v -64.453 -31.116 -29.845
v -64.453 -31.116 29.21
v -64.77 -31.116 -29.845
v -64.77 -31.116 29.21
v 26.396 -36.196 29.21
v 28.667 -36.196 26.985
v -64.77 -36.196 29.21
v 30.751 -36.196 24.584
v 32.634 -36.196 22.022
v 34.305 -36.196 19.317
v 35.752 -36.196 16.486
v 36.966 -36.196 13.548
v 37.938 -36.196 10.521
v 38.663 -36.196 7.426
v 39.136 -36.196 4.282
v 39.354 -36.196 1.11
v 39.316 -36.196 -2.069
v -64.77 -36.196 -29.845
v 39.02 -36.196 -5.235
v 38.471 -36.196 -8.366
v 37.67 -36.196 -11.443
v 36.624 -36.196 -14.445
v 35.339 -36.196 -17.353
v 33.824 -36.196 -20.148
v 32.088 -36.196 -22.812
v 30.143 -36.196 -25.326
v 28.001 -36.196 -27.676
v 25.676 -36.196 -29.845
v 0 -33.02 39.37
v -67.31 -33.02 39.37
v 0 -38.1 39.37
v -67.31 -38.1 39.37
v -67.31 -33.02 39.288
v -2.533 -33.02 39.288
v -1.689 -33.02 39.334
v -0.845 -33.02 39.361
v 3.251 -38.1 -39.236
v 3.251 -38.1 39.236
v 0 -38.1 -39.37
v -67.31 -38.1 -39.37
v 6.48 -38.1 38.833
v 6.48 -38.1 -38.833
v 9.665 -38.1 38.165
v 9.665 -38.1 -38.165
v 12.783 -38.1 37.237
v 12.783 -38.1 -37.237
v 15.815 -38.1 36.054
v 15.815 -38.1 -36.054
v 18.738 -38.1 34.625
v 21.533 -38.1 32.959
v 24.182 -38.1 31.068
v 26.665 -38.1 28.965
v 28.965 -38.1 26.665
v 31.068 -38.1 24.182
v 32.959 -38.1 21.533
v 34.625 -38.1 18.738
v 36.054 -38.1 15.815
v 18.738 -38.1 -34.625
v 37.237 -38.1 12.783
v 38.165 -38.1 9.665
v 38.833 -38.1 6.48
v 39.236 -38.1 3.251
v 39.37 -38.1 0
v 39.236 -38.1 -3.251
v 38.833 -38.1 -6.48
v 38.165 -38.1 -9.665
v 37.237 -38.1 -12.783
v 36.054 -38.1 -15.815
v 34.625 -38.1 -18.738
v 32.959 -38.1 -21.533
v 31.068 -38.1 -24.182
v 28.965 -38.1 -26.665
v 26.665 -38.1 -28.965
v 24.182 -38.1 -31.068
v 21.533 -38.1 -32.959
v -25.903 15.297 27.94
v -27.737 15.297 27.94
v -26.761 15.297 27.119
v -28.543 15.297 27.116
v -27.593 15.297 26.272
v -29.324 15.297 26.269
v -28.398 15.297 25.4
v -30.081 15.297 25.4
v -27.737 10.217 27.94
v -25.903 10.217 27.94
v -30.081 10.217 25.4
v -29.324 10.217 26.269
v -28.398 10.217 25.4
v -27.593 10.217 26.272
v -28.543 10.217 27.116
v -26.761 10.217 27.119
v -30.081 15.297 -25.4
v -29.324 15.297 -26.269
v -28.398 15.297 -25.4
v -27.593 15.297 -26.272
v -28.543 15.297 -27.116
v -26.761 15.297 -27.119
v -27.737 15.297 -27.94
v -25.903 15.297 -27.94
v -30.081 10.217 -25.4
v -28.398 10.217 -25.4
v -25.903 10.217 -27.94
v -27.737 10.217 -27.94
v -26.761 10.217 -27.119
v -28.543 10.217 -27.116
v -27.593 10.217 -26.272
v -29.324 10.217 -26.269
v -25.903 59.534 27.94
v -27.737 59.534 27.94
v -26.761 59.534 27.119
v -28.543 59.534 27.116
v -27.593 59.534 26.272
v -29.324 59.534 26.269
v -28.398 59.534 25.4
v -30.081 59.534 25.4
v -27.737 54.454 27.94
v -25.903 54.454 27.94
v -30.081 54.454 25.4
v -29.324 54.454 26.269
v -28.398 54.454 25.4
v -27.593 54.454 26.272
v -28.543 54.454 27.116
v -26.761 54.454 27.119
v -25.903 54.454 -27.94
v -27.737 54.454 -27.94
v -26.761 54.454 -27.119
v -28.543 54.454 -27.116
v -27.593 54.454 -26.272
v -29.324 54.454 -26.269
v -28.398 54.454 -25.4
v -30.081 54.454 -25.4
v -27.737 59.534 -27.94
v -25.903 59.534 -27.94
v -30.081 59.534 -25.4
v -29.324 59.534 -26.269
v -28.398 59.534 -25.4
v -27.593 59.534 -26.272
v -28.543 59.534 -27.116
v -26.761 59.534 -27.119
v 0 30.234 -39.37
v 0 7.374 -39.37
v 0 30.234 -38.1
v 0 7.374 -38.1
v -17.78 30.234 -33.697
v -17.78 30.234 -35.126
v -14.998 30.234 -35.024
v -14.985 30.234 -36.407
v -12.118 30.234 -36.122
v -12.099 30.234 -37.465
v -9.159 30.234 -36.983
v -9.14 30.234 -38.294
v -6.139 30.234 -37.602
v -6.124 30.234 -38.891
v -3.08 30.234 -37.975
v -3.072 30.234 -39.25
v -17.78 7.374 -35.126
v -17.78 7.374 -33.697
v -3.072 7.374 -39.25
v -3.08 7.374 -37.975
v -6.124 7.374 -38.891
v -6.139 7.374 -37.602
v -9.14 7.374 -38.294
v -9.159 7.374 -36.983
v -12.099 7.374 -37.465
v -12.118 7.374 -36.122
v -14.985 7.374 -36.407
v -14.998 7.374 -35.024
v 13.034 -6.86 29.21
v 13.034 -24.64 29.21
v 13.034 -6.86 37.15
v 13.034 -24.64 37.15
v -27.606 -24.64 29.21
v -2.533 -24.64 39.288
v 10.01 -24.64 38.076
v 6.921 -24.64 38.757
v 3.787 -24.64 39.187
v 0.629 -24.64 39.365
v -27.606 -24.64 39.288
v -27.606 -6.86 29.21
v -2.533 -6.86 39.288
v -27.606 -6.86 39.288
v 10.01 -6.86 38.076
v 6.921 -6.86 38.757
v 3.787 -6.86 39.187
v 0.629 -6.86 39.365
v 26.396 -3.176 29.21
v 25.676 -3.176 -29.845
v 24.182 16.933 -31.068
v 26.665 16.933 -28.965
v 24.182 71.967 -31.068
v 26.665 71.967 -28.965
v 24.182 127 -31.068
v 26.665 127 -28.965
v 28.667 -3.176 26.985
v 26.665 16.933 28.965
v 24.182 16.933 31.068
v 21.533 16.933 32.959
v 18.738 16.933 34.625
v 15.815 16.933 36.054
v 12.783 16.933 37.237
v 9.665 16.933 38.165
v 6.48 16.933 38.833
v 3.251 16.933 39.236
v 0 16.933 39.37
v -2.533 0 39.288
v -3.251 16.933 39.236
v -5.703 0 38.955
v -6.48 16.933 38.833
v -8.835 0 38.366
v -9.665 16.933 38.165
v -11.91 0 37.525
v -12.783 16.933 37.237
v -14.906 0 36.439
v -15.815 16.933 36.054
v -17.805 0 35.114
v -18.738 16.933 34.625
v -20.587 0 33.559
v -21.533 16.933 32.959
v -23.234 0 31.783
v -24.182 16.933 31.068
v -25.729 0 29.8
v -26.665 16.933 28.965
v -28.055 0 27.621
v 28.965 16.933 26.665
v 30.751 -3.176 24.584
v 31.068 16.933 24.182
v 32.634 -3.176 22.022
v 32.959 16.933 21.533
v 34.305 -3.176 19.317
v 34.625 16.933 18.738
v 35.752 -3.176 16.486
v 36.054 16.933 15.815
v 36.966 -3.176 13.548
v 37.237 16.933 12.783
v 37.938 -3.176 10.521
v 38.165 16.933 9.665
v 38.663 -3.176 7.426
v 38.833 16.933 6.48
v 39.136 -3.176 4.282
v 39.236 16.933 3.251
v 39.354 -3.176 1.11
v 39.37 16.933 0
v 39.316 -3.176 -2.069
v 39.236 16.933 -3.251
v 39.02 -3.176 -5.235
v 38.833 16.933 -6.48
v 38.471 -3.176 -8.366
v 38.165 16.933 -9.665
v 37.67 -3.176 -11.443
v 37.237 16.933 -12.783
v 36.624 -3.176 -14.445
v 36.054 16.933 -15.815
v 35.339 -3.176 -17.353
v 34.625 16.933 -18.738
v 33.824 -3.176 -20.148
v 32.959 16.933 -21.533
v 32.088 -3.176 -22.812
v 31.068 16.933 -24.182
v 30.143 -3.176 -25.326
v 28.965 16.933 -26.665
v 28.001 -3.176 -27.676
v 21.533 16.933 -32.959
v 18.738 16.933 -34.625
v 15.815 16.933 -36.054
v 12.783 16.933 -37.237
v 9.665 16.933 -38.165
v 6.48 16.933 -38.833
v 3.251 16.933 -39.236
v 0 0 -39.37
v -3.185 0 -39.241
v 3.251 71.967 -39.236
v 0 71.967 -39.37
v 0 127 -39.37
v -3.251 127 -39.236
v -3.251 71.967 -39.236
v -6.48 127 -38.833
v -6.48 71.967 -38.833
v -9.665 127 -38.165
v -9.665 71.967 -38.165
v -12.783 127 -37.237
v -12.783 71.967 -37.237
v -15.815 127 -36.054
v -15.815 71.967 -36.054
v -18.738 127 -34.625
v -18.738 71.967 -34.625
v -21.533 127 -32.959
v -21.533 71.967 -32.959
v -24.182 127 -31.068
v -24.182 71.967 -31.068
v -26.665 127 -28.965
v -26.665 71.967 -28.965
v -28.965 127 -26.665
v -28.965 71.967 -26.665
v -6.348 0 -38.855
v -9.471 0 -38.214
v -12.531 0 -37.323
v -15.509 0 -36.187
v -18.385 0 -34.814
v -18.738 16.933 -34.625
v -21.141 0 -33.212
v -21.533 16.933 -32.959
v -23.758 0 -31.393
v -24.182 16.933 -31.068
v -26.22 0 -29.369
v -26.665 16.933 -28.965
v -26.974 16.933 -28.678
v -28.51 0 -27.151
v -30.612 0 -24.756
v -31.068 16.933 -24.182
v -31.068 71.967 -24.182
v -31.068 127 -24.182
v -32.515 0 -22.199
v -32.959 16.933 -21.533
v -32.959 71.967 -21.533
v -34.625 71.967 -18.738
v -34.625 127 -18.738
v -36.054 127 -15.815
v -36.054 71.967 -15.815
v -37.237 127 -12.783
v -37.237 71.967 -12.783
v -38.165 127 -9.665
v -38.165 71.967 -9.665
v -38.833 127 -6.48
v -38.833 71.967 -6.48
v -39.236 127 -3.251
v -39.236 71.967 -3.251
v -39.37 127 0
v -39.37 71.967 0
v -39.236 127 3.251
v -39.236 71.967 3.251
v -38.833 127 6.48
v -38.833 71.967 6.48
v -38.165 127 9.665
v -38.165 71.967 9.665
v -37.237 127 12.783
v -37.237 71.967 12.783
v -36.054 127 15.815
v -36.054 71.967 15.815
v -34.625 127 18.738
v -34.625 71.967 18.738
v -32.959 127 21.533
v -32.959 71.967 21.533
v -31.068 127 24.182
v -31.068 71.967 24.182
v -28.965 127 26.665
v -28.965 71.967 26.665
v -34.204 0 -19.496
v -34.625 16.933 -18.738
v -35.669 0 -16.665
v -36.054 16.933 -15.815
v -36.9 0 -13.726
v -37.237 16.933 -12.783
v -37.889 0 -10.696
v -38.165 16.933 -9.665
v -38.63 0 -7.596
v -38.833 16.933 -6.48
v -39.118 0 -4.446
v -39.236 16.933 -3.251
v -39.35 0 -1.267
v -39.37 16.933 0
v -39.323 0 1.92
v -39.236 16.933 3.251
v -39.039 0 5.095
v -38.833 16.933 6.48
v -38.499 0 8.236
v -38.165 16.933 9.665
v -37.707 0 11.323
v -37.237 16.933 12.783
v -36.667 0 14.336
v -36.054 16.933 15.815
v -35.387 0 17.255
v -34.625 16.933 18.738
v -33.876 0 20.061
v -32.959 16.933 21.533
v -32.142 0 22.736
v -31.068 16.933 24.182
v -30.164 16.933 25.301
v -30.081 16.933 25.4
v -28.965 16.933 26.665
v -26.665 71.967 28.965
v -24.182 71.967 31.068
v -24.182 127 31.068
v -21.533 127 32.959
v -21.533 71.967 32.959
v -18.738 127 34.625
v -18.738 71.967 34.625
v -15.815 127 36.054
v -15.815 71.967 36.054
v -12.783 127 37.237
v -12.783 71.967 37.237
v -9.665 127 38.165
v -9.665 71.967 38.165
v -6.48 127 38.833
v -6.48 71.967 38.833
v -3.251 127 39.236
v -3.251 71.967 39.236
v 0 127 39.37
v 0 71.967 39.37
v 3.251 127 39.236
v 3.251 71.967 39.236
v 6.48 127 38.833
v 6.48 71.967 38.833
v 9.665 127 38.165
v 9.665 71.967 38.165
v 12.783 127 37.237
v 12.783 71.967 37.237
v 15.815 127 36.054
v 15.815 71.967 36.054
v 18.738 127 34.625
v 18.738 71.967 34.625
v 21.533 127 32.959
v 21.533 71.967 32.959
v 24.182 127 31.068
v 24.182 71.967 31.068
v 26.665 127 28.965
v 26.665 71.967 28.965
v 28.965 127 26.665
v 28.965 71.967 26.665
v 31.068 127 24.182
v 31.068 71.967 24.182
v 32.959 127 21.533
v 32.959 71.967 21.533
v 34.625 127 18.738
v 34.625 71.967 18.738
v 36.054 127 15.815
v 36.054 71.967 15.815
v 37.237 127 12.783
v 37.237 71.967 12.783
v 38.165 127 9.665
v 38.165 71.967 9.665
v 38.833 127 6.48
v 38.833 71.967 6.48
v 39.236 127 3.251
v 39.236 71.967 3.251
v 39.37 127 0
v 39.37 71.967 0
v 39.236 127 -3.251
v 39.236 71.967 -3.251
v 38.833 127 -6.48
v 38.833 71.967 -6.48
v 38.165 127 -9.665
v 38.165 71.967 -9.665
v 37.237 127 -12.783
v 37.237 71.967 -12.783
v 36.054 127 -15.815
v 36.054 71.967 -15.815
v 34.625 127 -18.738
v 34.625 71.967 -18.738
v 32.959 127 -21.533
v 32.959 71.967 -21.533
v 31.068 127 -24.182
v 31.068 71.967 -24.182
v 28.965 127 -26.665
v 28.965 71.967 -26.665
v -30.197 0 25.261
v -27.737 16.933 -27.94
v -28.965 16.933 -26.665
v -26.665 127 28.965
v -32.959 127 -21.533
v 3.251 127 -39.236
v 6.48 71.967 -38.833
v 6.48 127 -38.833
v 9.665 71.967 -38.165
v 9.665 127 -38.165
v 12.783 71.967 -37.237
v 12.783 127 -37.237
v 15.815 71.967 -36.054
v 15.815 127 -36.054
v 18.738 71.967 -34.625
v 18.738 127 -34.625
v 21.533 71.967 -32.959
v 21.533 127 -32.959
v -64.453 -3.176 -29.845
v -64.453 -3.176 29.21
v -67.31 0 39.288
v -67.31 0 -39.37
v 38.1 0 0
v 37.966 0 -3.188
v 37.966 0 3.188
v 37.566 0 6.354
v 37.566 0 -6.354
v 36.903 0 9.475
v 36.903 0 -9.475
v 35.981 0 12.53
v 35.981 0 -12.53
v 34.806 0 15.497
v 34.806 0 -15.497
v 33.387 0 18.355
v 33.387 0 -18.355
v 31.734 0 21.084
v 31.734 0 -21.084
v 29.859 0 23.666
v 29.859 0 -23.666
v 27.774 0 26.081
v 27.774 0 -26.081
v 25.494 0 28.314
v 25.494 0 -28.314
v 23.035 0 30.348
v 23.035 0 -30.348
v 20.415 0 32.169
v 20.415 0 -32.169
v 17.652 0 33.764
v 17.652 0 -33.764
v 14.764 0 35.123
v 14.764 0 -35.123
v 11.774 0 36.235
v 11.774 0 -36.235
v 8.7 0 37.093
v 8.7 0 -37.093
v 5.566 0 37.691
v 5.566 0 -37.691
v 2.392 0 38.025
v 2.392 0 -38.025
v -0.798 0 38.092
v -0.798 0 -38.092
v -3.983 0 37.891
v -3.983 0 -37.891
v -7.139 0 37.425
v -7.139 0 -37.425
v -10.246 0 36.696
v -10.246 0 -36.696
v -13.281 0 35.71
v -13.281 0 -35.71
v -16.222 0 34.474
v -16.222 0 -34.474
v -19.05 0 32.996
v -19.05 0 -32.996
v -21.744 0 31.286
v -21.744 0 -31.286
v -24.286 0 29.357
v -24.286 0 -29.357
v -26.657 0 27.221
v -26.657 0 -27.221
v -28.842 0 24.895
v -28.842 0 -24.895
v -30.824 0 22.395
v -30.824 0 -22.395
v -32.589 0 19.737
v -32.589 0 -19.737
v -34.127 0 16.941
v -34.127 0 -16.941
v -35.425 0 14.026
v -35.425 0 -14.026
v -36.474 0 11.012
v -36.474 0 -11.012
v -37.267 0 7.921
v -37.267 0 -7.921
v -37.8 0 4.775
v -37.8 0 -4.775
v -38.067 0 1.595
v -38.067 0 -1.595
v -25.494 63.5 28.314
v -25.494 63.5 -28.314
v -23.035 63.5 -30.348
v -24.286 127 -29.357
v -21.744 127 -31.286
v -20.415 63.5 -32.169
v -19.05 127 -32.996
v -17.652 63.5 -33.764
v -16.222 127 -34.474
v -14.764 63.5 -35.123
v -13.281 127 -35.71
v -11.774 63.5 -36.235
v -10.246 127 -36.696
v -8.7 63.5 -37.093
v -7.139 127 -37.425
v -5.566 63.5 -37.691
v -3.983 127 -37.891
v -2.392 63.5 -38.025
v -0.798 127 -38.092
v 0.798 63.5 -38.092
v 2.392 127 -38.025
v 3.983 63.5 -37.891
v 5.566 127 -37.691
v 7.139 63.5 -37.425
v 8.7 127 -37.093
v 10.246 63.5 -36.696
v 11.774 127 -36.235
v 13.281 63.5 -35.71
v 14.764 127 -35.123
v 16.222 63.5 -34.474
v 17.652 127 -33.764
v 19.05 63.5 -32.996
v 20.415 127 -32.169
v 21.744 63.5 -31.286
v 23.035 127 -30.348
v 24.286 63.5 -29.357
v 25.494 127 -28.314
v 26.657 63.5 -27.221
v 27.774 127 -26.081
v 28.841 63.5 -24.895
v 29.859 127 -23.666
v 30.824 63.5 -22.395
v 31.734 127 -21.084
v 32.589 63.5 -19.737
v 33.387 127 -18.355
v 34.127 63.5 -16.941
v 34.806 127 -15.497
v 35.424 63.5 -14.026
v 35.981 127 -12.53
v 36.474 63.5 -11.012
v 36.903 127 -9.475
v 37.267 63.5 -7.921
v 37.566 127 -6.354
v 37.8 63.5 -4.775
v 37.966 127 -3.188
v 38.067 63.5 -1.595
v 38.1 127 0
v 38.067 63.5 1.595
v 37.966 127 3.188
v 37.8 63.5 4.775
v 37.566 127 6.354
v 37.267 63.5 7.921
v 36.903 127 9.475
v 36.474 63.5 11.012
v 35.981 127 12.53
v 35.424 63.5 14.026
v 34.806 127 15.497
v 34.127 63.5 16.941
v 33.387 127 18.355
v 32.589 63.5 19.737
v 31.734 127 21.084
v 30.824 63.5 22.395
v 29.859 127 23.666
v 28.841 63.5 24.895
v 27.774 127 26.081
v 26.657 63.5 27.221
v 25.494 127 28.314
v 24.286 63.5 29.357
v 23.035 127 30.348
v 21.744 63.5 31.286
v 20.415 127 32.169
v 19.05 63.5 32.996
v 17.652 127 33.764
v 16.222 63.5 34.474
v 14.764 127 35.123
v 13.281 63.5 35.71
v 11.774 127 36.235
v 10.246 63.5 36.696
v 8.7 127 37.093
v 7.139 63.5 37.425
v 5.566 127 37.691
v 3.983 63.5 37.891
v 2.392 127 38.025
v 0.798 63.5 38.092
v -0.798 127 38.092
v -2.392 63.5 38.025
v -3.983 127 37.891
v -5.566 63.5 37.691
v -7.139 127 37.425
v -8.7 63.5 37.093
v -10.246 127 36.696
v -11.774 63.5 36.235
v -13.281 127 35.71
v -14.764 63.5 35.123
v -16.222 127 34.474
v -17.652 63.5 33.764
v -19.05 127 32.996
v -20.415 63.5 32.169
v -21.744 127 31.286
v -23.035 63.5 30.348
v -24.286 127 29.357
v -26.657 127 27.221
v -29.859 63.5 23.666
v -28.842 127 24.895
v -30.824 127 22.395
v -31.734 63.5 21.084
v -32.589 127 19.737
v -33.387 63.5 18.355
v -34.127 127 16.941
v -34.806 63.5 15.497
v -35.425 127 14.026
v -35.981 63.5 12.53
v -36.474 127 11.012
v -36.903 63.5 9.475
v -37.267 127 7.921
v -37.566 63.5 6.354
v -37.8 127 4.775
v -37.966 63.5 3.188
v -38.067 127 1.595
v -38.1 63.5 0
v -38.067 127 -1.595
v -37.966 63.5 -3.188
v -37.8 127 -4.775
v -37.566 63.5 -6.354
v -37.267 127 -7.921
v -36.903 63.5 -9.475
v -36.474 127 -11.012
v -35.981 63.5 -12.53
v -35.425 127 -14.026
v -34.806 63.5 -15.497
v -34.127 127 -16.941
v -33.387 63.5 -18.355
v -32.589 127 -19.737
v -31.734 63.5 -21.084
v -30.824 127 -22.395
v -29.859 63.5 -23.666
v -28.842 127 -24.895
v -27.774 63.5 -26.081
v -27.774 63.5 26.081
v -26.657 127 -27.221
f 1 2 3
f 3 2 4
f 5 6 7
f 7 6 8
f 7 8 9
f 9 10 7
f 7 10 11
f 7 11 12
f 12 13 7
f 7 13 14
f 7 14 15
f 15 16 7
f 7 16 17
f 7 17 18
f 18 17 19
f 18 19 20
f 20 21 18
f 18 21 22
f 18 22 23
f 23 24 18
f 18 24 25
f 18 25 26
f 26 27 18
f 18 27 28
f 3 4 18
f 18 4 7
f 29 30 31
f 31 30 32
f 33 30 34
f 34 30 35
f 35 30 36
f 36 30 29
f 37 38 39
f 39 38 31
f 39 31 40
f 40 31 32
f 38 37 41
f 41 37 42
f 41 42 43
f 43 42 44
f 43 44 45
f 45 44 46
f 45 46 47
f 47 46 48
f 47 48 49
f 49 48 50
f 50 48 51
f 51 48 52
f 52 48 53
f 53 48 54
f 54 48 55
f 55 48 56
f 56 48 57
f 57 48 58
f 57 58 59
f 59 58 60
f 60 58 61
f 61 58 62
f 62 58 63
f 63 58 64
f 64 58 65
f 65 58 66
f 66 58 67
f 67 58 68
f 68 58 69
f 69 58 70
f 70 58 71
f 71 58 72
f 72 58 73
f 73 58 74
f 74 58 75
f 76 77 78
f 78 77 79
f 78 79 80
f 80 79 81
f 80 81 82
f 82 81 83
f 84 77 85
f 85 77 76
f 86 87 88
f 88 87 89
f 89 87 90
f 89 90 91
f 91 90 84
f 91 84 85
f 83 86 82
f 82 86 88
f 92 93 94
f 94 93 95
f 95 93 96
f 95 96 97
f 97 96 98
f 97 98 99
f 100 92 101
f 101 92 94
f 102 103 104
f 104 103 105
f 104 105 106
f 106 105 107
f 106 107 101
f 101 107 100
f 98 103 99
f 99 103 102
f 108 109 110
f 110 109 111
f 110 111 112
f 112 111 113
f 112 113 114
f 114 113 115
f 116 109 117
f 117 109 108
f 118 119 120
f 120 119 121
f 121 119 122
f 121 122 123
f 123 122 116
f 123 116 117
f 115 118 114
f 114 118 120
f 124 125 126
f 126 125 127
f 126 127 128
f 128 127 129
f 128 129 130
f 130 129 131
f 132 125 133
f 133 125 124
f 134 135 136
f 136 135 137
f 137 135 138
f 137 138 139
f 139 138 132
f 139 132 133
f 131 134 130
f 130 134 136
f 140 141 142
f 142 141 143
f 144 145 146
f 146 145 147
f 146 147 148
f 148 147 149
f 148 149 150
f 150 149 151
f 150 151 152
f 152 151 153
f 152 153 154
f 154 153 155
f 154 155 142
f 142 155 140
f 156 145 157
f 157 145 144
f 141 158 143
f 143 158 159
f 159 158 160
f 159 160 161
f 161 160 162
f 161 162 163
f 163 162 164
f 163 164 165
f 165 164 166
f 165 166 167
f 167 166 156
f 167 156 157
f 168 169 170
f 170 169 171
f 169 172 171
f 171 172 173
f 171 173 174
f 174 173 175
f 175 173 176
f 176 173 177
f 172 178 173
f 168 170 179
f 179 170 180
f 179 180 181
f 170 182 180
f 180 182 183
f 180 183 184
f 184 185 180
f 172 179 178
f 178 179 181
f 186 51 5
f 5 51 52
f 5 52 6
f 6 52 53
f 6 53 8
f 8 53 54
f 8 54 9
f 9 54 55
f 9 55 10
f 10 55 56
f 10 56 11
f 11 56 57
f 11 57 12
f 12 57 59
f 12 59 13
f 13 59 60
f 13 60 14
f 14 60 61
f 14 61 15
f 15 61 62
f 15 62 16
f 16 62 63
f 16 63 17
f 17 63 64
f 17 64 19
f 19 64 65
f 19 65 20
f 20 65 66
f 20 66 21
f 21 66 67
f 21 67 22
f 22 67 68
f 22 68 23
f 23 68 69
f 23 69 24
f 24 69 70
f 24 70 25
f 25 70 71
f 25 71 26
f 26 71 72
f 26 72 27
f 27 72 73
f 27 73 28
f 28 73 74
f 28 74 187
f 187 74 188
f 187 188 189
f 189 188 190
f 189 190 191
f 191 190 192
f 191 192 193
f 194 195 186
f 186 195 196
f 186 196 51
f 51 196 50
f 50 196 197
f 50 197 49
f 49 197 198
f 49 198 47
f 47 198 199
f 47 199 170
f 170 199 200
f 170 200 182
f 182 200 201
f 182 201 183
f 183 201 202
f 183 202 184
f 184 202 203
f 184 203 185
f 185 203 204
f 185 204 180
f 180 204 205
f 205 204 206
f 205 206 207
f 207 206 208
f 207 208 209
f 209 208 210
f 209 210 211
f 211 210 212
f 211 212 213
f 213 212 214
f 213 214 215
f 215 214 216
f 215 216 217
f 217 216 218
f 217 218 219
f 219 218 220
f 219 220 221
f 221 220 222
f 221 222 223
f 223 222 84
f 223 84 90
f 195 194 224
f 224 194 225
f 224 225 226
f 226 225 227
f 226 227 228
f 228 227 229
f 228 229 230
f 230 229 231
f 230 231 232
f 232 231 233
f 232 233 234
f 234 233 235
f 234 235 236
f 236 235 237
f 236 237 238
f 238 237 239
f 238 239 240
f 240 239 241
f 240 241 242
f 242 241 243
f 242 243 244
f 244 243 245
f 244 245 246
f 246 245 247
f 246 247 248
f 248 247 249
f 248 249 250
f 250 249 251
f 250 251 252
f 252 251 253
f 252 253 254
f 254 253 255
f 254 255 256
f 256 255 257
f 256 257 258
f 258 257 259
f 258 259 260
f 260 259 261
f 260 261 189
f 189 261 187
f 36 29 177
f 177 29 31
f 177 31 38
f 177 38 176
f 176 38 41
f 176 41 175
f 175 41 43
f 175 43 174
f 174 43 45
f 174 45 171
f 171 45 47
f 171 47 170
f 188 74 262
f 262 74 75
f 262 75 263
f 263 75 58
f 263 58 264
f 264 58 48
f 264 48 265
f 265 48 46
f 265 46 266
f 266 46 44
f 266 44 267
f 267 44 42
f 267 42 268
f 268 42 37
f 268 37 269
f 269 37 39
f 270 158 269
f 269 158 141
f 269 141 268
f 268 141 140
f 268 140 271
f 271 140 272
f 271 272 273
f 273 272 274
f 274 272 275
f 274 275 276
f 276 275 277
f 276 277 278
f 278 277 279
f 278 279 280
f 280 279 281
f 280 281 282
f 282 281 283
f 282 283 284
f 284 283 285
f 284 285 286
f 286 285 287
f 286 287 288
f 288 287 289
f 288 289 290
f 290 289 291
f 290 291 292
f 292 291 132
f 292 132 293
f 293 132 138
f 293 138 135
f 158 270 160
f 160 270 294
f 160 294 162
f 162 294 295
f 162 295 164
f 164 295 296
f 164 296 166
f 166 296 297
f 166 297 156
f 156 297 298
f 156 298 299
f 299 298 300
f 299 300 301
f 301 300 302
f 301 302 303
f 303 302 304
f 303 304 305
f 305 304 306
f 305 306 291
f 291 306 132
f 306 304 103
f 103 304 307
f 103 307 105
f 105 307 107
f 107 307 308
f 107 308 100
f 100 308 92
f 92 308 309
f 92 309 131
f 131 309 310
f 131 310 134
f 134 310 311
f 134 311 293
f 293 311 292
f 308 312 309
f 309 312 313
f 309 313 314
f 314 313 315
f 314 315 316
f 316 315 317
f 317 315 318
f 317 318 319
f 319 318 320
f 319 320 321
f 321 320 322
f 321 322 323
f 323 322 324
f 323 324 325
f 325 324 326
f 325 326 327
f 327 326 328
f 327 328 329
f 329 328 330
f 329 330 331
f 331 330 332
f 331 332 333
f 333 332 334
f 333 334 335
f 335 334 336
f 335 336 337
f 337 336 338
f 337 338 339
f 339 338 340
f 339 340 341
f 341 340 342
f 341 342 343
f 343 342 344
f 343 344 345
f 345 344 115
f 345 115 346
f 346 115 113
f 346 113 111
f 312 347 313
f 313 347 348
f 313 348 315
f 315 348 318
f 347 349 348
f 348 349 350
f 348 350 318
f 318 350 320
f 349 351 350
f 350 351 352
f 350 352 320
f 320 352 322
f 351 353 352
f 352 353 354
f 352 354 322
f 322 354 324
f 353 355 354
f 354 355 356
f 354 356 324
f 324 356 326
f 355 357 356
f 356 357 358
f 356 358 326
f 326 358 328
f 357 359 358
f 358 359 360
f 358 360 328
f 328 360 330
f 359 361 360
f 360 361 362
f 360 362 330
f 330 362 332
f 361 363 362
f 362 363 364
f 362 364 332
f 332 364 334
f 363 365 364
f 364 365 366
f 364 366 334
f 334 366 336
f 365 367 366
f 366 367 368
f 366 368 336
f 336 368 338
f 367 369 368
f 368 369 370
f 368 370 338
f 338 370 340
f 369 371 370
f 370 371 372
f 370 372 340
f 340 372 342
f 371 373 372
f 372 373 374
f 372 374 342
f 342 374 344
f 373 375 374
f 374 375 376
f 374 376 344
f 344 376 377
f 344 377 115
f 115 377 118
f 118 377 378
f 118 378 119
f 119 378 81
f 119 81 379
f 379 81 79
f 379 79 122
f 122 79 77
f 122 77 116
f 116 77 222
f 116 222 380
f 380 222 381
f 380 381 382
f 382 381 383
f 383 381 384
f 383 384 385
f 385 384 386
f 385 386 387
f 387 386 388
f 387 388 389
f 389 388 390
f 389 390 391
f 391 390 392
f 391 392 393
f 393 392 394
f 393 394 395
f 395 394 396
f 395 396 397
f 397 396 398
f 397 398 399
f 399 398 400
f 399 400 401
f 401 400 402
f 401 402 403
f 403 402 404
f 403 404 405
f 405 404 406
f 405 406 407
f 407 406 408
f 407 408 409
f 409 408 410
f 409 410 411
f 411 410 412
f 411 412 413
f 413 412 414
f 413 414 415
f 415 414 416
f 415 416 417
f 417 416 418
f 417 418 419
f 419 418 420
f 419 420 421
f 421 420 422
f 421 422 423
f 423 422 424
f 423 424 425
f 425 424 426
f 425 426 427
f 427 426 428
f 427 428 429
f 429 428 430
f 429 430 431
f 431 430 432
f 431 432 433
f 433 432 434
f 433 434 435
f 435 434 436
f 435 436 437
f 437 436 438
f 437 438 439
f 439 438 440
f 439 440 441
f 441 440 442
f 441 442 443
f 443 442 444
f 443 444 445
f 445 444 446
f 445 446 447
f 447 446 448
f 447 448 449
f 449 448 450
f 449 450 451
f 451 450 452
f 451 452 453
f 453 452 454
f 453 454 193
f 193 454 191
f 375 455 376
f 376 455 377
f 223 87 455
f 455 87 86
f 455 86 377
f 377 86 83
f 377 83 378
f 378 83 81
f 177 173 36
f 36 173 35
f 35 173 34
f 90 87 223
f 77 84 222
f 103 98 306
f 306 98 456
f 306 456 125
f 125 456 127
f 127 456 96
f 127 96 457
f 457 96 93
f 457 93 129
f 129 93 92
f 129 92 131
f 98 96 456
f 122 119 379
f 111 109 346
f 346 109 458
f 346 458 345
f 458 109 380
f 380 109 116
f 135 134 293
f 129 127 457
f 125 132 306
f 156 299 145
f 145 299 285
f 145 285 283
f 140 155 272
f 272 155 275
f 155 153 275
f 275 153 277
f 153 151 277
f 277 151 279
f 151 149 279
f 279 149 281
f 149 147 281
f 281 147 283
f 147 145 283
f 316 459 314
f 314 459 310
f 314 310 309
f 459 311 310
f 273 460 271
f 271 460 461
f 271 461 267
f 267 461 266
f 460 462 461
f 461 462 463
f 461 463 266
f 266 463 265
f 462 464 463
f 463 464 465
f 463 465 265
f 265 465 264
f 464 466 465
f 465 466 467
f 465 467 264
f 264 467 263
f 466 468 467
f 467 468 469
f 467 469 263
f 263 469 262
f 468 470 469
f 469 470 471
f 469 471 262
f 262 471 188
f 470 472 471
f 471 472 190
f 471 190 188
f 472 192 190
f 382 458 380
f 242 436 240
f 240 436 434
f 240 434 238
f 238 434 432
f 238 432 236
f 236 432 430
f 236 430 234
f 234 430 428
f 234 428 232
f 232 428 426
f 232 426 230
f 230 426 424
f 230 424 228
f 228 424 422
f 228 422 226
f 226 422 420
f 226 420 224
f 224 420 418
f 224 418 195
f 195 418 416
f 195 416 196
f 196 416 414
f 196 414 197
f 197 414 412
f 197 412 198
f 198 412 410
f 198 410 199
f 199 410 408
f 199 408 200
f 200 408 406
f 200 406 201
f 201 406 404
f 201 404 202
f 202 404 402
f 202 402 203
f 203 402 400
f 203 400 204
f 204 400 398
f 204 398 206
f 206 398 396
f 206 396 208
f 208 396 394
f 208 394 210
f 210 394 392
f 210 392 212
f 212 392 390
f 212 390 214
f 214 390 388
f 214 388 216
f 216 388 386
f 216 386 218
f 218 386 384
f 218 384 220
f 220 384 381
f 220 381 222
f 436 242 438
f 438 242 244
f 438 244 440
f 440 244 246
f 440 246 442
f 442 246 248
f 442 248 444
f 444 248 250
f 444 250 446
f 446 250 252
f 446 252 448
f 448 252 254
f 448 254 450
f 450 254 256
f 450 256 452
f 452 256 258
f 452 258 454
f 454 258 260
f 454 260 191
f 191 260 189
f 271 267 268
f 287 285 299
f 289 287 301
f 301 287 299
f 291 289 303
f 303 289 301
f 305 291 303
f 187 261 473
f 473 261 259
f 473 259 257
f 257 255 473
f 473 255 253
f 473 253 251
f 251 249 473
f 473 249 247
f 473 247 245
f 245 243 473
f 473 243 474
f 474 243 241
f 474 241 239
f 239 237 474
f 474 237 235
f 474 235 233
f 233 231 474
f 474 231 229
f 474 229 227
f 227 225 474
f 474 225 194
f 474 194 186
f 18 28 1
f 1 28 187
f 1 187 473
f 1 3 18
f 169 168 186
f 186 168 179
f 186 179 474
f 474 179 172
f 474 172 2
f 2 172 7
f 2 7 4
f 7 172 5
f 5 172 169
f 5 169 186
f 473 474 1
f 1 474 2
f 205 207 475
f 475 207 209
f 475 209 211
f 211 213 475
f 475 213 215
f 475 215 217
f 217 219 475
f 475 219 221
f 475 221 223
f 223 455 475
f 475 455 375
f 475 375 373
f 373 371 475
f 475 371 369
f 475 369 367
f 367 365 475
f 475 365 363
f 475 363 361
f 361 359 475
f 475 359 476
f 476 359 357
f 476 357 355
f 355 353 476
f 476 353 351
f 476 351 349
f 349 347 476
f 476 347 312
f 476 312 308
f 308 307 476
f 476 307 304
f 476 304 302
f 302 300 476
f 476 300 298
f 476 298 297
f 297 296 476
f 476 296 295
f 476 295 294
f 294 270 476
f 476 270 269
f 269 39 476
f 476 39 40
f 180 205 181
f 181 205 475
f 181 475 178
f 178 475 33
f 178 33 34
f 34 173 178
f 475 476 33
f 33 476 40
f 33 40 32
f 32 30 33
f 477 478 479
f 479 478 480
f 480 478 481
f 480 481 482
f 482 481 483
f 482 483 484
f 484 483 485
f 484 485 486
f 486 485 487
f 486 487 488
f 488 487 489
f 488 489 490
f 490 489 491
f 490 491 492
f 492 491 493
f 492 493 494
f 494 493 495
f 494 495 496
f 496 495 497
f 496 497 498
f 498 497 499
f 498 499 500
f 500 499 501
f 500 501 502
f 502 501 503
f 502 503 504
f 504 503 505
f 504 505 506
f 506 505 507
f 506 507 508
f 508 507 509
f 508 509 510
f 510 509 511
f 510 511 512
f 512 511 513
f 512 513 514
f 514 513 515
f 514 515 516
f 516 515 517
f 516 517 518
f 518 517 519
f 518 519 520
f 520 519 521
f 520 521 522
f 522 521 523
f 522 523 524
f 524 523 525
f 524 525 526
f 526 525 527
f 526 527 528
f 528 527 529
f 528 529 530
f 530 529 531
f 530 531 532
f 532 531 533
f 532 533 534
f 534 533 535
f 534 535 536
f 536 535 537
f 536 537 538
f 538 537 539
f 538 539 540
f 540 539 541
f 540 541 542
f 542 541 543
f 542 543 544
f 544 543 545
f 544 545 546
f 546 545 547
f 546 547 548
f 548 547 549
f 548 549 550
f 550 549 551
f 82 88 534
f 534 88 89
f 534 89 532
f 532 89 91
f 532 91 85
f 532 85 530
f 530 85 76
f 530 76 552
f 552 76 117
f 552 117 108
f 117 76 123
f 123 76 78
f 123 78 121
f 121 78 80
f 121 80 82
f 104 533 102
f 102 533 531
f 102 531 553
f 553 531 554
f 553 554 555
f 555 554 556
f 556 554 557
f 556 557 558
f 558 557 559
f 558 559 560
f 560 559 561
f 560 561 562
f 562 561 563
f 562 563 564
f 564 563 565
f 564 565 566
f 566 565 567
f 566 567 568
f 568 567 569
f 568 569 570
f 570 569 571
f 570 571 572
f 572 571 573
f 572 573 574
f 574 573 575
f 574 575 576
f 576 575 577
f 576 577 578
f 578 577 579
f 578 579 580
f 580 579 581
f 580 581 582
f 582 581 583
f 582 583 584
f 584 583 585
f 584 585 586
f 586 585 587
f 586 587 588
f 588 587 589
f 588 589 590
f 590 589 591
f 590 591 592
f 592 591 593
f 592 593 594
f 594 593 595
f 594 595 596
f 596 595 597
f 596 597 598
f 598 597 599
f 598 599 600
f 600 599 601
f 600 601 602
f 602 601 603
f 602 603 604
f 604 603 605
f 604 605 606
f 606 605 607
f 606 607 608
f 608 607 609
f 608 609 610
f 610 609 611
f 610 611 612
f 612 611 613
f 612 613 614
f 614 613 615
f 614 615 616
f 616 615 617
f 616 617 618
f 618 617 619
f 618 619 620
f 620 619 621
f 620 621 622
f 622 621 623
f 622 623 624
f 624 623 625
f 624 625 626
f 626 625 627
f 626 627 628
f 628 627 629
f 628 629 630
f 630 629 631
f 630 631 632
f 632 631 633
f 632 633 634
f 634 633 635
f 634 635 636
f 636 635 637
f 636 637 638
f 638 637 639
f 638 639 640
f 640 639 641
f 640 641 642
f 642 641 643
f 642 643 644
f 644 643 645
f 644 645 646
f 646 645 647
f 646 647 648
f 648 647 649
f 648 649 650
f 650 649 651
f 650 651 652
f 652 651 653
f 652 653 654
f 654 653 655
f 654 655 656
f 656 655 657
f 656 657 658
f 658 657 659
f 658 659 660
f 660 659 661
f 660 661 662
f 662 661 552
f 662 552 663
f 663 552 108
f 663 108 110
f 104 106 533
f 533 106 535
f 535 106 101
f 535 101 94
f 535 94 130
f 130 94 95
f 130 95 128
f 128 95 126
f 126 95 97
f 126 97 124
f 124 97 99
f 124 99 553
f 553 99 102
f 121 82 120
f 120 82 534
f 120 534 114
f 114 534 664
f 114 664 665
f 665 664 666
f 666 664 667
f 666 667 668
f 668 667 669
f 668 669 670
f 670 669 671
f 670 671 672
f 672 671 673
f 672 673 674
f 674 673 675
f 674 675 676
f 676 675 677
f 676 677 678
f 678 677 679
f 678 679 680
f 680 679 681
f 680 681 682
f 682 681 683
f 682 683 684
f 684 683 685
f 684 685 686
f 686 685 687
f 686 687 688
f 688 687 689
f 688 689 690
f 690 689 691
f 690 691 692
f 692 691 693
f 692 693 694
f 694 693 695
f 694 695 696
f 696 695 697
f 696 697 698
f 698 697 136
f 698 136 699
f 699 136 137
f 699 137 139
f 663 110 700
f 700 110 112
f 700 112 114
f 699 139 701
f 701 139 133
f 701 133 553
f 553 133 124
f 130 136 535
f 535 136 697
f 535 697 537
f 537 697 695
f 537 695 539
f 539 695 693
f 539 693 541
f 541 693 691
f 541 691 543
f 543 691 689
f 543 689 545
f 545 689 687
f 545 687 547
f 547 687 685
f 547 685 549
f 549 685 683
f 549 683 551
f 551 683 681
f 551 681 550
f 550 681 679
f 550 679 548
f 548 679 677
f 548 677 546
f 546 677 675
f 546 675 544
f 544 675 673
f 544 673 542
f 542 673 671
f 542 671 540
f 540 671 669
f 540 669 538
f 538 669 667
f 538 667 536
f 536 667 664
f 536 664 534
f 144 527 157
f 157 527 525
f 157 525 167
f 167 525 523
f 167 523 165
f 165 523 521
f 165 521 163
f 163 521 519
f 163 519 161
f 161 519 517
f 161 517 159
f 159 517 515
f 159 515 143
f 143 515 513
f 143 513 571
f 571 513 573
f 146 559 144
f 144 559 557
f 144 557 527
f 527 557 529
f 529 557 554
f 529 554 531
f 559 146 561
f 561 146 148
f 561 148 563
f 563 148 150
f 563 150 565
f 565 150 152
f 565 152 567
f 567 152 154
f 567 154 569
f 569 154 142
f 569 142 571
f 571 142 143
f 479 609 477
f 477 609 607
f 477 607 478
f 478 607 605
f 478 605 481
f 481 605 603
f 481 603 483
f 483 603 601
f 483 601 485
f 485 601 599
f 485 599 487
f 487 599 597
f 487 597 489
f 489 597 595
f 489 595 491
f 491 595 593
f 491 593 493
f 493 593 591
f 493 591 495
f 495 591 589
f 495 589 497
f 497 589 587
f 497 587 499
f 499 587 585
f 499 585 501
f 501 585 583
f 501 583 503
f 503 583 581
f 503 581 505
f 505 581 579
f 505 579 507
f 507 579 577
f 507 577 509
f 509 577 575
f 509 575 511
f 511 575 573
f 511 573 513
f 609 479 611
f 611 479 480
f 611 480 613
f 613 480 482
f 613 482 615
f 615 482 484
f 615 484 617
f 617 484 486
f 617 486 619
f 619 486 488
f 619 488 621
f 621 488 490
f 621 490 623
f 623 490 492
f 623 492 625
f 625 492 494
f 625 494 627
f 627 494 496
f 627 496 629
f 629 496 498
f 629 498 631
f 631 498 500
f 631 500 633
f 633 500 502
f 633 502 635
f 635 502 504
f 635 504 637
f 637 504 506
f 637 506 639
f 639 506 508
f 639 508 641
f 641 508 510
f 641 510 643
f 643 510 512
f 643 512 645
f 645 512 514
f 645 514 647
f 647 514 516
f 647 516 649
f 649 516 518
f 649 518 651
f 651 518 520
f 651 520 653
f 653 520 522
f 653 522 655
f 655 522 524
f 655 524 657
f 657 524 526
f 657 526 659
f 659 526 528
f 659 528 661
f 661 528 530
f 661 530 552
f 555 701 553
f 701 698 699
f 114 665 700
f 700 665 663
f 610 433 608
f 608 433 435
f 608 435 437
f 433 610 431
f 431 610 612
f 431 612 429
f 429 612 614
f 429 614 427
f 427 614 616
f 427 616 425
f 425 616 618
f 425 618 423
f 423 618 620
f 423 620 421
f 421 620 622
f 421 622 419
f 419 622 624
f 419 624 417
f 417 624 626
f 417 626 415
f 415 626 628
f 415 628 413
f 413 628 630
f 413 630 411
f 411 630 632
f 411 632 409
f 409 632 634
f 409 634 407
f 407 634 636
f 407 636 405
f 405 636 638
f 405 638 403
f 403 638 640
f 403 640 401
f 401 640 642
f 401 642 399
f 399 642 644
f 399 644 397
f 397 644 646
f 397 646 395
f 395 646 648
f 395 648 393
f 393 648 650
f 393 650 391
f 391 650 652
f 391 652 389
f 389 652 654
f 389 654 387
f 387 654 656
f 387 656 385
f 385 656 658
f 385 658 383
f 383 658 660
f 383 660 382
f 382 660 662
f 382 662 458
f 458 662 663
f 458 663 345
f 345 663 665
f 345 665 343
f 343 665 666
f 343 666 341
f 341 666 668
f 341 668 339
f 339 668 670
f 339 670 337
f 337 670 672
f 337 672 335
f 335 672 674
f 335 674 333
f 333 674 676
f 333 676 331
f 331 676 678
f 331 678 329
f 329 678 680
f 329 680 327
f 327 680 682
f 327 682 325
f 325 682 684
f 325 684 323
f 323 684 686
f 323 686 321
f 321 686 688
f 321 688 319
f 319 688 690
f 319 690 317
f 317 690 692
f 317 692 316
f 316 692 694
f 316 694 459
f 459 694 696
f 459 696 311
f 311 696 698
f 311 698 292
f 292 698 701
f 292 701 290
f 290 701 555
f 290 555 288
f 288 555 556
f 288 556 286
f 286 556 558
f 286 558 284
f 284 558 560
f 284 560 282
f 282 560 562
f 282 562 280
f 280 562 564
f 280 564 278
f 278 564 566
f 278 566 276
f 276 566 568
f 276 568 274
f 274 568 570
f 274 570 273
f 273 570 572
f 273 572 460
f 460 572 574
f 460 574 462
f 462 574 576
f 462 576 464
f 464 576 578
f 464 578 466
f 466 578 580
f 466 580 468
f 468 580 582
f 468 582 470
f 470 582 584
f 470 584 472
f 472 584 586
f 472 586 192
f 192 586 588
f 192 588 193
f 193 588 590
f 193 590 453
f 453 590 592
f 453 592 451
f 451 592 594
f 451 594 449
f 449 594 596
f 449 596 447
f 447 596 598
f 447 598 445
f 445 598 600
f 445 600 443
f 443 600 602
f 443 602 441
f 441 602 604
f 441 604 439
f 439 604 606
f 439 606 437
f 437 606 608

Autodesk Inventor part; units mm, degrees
ref_plane "XZ Plane" through (0, 0, 0) normal (0, 1, 0) x (-1, 0, 0)
ref_plane "XY Plane" through (0, 0, 0) normal (0, 0, 1) x (1, 0, 0)
sketch "Sketch1" plane through (0, 0, 0) normal (0, 1, 0) x (-1, 0, 0)
  circle A0 centre (0, 0) radius 39.37
  dimension "d0" = 78.74
extrude "Extrusion1" add sketch "Sketch1" along normal blind 127
sketch "Sketch2" plane through (0, 127, 0) normal (0, 1, 0) x (1, 0, 0)
  circle A0 centre (0, 0) radius 38.1
  dimension "d3" = 76.2
extrude "Extrusion2" cut sketch "Sketch2" against normal blind 127
sketch "Sketch3" plane through (0, 0, 0) normal (0, -1, 0) x (1, 0, 0)
  circle A0 centre (0, 0) radius 39.37
extrude "Extrusion3" add sketch "Sketch3" along normal blind 33.02
sketch "Sketch4" plane through (0, 0, 0) normal (1, 0, 0) x (0, 1, 0)
  line L0 (-33.02, 39.37) -> (-33.02, -39.37) projected
  line L1 (0, 39.2884) -> (-33.02, 39.2884)
  line L2 (-33.02, 39.2884) -> (-33.02, -39.37)
  line L3 (-33.02, -39.37) -> (0, -39.37)
  line L4 (0, -39.37) -> (0, 39.2884)
  point P0 (0, 0)
extrude "Extrusion4" add sketch "Sketch4" against normal blind 67.31
ref_plane "Work Plane1" through (39.37, 0, 0) normal (1, 0, 0) x (0, 1, 0)
sketch "Sketch5" plane through (39.37, 0, 0) normal (1, 0, 0) x (0, 1, 0)
  line L0 (-3.1755, 0) -> (-31.1155, 0)
  line L1 (-31.1155, 0) -> (-31.1155, 29.21)
  line L2 (-31.1155, 29.21) -> (-3.1755, 29.21)
  line L3 (-3.1755, 29.21) -> (-3.1755, 0)
  line L4 (-3.1755, 0) -> (-31.1155, 0)
  line L5 (-31.1155, 0) -> (-31.1155, -29.845)
  line L6 (-31.1155, -29.845) -> (-3.1755, -29.845)
  line L7 (-3.1755, -29.845) -> (-3.1755, 0)
  point P0 (0, 0)
  dimension "d10" = 27.94
  dimension "d11" = 29.21
  dimension "d12" = 27.94
  dimension "d13" = 29.845
extrude "Extrusion5" cut sketch "Sketch5" against normal blind 103.8225
sketch "Sketch6" plane through (0, 0, 0) normal (0, 0, 1) x (1, 0, 0)
  line L0 (39.37, -33.02) -> (39.37, 127) projected
  line L1 (39.37, -2.744) -> (13.0341, -2.744)
  line L2 (13.0341, -2.744) -> (-104.9586, 63.1124)
  line L3 (13.0341, -6.86) -> (-27.6059, -6.86)
  line L4 (-27.6059, -6.86) -> (-27.6059, -24.64)
  line L5 (-27.6059, -24.64) -> (13.0341, -24.64)
  line L6 (13.0341, -24.64) -> (13.0341, -6.86)
  point P0 (0, 0)
  dimension "d16" = 40.64
  dimension "d17" = 17.78
extrude "Extrusion6" cut sketch "Sketch6" along normal blind 102.5525
sketch "Sketch7" plane through (0, 0, 0) normal (0, 0, 1) x (1, 0, 0)
  point P0 (0, 0)
sketch "Sketch8" plane through (0, 0, 0) normal (0, 0, 1) x (1, 0, 0)
  point P0 (0, 0)
sketch "Sketch9" plane through (0, 0, 0) normal (0, 0, 1) x (1, 0, 0)
  point P0 (0, 0)
sketch "Sketch10" plane through (0, 0, 0) normal (0, 0, 1) x (1, 0, 0)
  line L0 (0, 7.3743) -> (-17.78, 7.3743)
  line L1 (-17.78, 7.3743) -> (-17.78, 30.2343)
  line L2 (-17.78, 30.2343) -> (0, 30.2343)
  line L3 (0, 30.2343) -> (0, 7.3743)
  point P0 (0, 0)
  dimension "d20" = 17.78
  dimension "d21" = 22.86
extrude "Extrusion7" cut sketch "Sketch10" against normal blind 102.5525
sketch "Sketch11" plane through (0, 0, 0) normal (1, 0, 0) x (0, 1, 0)
  line L0 (127, -39.37) -> (127, 39.37) projected
  line L1 (127, 0) -> (68.58, 0)
  line L2 (68.58, 0) -> (68.58, 25.4)
  line L3 (59.5338, 0) -> (59.5338, -25.4)
  line L4 (59.5338, -25.4) -> (54.4538, -25.4)
  line L5 (54.4538, -25.4) -> (54.4538, -27.94)
  line L6 (54.4538, -27.94) -> (59.5338, -27.94)
  line L7 (59.5338, -27.94) -> (59.5338, -25.4)
  line L8 (59.5338, 25.4) -> (54.4538, 25.4)
  line L9 (54.4538, 25.4) -> (54.4538, 27.94)
  line L10 (54.4538, 27.94) -> (59.5338, 27.94)
  line L11 (59.5338, 27.94) -> (59.5338, 25.4)
  line L12 (15.2971, -27.94) -> (10.2171, -27.94)
  line L13 (10.2171, -27.94) -> (10.2171, -25.4)
  line L14 (10.2171, -25.4) -> (15.2971, -25.4)
  line L15 (15.2971, -25.4) -> (15.2971, -27.94)
  line L16 (15.2971, 25.4) -> (10.2171, 25.4)
  line L17 (10.2171, 25.4) -> (10.2171, 27.94)
  line L18 (10.2171, 27.94) -> (15.2971, 27.94)
  line L19 (15.2971, 27.94) -> (15.2971, 25.4)
  point P0 (0, 0)
  dimension "d24" = 58.42
  dimension "d25" = 25.4
  dimension "d26" = 25.4
  dimension "d27" = 5.08
  dimension "d28" = 2.54
  dimension "d29" = 5.08
  dimension "d30" = 2.54
  dimension "d31" = 5.08
  dimension "d32" = 2.54
extrude "Extrusion8" cut sketch "Sketch11" against normal blind 83.185
sketch "Sketch12" plane through (0, -33.02, 0) normal (0, -1, 0) x (1, 0, 0)
  point P0 (0, 0)
sketch "Sketch13" plane through (0, -33.02, 0) normal (0, -1, 0) x (1, 0, 0)
  circle A0 centre (0, 0) radius 39.37
  dimension "d35" = 78.74
extrude "Extrusion9" add sketch "Sketch13" along normal blind 5.08
sketch "Sketch14" plane through (0, -33.02, 0) normal (0, -1, 0) x (1, 0, 0)
  circle A0 centre (0, 0) radius 39.37 projected
  line L0 (0, -39.37) -> (-67.31, -39.37) projected
  line L1 (0, 39.37) -> (-67.31, 39.37)
  line L2 (-67.31, 39.37) -> (-67.31, -39.37)
  line L3 (-67.31, -39.37) -> (0, -39.37)
  line L4 (0, -39.37) -> (0, 39.37)
extrude "Extrusion10" add sketch "Sketch14" along normal blind 5.08 contours A0 L0 L2 L1
sketch "Sketch15" plane through (39.37, 0, 0) normal (1, 0, 0) x (0, 1, 0)
  line L0 (-31.1155, 29.21) -> (-31.1155, -29.845) projected
  line L1 (-31.1155, 29.21) -> (-36.1955, 29.21)
  line L2 (-36.1955, 29.21) -> (-36.1955, -29.845)
  line L3 (-36.1955, -29.845) -> (-31.1155, -29.845)
  line L4 (-31.1155, -29.845) -> (-31.1155, 29.21)
  point P0 (0, 0)
  dimension "d40" = 5.08
  dimension "d41" = 59.055
extrude "Extrusion11" cut sketch "Sketch15" against normal blind 104.14
properties part number "_3DPrint"
